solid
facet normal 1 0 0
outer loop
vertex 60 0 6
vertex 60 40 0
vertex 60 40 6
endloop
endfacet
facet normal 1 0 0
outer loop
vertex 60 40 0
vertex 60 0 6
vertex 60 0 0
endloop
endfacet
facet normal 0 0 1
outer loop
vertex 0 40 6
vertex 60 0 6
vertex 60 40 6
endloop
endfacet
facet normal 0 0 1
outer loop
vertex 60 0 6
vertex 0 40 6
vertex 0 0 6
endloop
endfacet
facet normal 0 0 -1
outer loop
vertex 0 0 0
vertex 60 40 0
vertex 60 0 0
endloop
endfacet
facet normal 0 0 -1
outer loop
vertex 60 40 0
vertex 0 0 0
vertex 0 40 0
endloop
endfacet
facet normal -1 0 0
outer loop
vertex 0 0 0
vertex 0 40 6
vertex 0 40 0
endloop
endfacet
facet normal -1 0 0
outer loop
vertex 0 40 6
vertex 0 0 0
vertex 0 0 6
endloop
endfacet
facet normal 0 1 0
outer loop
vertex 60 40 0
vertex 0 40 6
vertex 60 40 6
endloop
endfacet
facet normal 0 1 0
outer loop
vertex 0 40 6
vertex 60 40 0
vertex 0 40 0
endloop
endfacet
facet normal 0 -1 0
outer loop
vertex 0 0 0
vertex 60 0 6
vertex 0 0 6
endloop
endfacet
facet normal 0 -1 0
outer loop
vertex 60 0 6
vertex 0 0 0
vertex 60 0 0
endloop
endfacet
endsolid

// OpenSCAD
/* doodle-meta {"version":1,"parameters":{"width":{"label":"Overall width","description":"Changes the body width","unit":"mm","feature":"body_width"},"depth":{"label":"Overall depth","description":"Changes the body depth","unit":"mm","feature":"body_depth"},"thickness":{"label":"Plate thickness","description":"Changes the plate thickness","unit":"mm","feature":"body_thickness"},"notch_width":{"label":"Notch width","description":"Changes the width of the top notch","unit":"mm","feature":"notch"},"notch_depth":{"label":"Notch depth","description":"Changes the depth of the top notch","unit":"mm","feature":"notch"},"fillet_radius":{"label":"Fillet radius","description":"Changes the radius of the top-right corner fillet","unit":"mm","feature":"fillet"},"hole_diameter":{"label":"Hole diameter","description":"Changes the diameter of the through hole","unit":"mm","feature":"hole"},"hole_x":{"label":"Hole X position","description":"Changes the X position of the through hole","unit":"mm","feature":"hole"},"hole_y":{"label":"Hole Y position","description":"Changes the Y position of the through hole","unit":"mm","feature":"hole"}},"features":{"body_width":{"kind":"dimension","axis":"x","label":"Overall width"},"body_depth":{"kind":"dimension","axis":"y","label":"Overall depth"},"body_thickness":{"kind":"dimension","axis":"z","label":"Plate thickness"},"notch":{"kind":"region","label":"Top Notch","min":[{"parameter":"width","scale":0.3333,"offset":0},{"parameter":"depth","scale":1.0,"offset":0},0],"max":[{"parameter":"width","scale":0.6667,"offset":0},{"parameter":"depth","scale":1.0,"offset":0},{"parameter":"thickness","scale":1.0,"offset":0}]},"fillet":{"kind":"region","label":"Top-Right Fillet","min":[{"parameter":"width","scale":1.0,"offset":-6},{"parameter":"depth","scale":1.0,"offset":-6},0],"max":[{"parameter":"width","scale":1.0,"offset":0},{"parameter":"depth","scale":1.0,"offset":0},{"parameter":"thickness","scale":1.0,"offset":0}]},"hole":{"kind":"region","label":"Through Hole","min":[{"parameter":"hole_x","scale":1.0,"offset":-4},{"parameter":"hole_y","scale":1.0,"offset":-4},0],"max":[{"parameter":"hole_x","scale":1.0,"offset":4},{"parameter":"hole_y","scale":1.0,"offset":4},{"parameter":"thickness","scale":1.0,"offset":0}]}}} */

// Top-level parameters (user-editable)
width = 60;
depth = 40;
thickness = 6;
notch_width = 20;
notch_depth = 10;
fillet_radius = 6;
hole_diameter = 8;
hole_x = 12;
hole_y = 15;

// Derived constants (not user-editable)
eps = 0.01;

// Main design
difference() {
    // Positive body: rectangular plate with fillet on top-right corner
    union() {
        // Main rectangular body
        cube([width, depth, thickness]);
        
        // Fillet on top-right corner (X=width, Y=depth)
        // Create a cylinder that fills the corner, then subtract the square part
        translate([width - fillet_radius, depth - fillet_radius, 0])
            cylinder(h = thickness, r = fillet_radius, $fn = 32);
    }
    
    // Subtract the square part of the fillet corner to make it round
    // The fillet cylinder is at (width-fr, depth-fr), so we need to remove the square corner
    // Actually, the union above adds a cylinder at the corner. We need to ensure the corner is rounded.
    // Let's rethink: The base cube has sharp corners. We want to round the top-right corner (X=width, Y=depth).
    // To do this properly: create the base shape as a polygon extruded, or use difference to cut the corner.
    
    // Better approach: Start with full cube, then cut the corner with a cylinder subtraction approach.
    // But we already unioned a cylinder. Let's correct the approach.
    
    // Correct approach: 
    // 1. Create the base plate as a cube.
    // 2. Cut out the notch from the top edge (Y=depth side).
    // 3. Cut out the hole.
    // 4. Round the top-right corner by cutting with a cylinder.
    
    // Let me restart the geometry logic properly.
}

// Let me rewrite the entire design with correct CSG logic.

// Clear and restart
difference() {
    // Base plate
    cube([width, depth, thickness]);
    
    // Cut the top-right corner (X=width, Y=depth) to create fillet
    // The corner to round is at (width, depth). We cut a cylinder centered at (width, depth) with radius fillet_radius.
    // But we want to keep the material inside the fillet radius, so we subtract the area outside the fillet.
    // Actually, to round a corner: subtract a cylinder from the corner region.
    // The cylinder should be centered at (width, depth) and we subtract the part that extends beyond the fillet.
    // Wait - to create a fillet (rounded corner), we need to remove the sharp corner material.
    // The sharp corner is at (width, depth). We want to replace it with a quarter-circle of radius fillet_radius.
    // So we subtract a cylinder centered at (width, depth) with radius fillet_radius? No, that would remove too much.
    // 
    // Correct: The fillet means the corner is rounded inward. The material near (width, depth) is removed.
    // We subtract a cylinder centered at (width, depth) with radius fillet_radius, but only the part that is 
    // outside the desired rounded boundary. Actually, the standard way:
    // The rounded corner means the boundary follows a quarter circle from (width-fr, depth) to (width, depth-fr).
    // So we need to subtract the region that is outside this quarter circle but inside the original corner.
    // 
    // Simpler: Create the plate as a polygon in XY, then extrude.
    
    // Let me use a different approach: define the 2D profile and extrude.
}

// Final correct implementation using polygon extrusion for the base shape

// Define the 2D profile of the plate (XY plane) with fillet on top-right corner
// Top-right corner is at (width, depth). Fillet radius = fillet_radius.
// The profile goes: (0,0) -> (width,0) -> (width, depth-fr) -> arc to (width-fr, depth) -> (0, depth) -> (0,0)

module plate_profile() {
    // Create the 2D polygon for the plate with rounded top-right corner
    // Points: bottom-left, bottom-right, right side up to fillet start, fillet arc, top side from fillet end, top-left
    fr = fillet_radius;
    steps = 16;
    
    polygon([
        [0, 0],
        [width, 0],
        [width, depth - fr],
        // Fillet arc from (width, depth-fr) to (width-fr, depth)
        for (i = [0:steps]) let(
            angle = 90 * i / steps,
            rad = 90 - angle,
            x = width - fr + fr * cos(rad),
            y = depth - fr + fr * sin(rad)
        ) [x, y],
        [0, depth]
    ]);
}

difference() {
    // Extrude the plate profile
    linear_extrude(height = thickness)
        plate_profile();
    
    // Cut the notch from the top edge (Y=depth side)
    // Notch is centered on top edge, width=notch_width, depth=notch_depth
    // Top edge is at Y=depth. Notch extends inward (decreasing Y) by notch_depth.
    // Notch X range: centered, so from (width-notch_width)/2 to (width+notch_width)/2
    translate([(width - notch_width) / 2, depth - notch_depth, -eps])
        cube([notch_width, notch_depth + eps, thickness + 2 * eps]);
    
    // Cut the through hole
    // Hole at (hole_x, hole_y), diameter=hole_diameter, through Z
    translate([hole_x, hole_y, -eps])
        cylinder(h = thickness + 2 * eps, d = hole_diameter, $fn = 32);
}
